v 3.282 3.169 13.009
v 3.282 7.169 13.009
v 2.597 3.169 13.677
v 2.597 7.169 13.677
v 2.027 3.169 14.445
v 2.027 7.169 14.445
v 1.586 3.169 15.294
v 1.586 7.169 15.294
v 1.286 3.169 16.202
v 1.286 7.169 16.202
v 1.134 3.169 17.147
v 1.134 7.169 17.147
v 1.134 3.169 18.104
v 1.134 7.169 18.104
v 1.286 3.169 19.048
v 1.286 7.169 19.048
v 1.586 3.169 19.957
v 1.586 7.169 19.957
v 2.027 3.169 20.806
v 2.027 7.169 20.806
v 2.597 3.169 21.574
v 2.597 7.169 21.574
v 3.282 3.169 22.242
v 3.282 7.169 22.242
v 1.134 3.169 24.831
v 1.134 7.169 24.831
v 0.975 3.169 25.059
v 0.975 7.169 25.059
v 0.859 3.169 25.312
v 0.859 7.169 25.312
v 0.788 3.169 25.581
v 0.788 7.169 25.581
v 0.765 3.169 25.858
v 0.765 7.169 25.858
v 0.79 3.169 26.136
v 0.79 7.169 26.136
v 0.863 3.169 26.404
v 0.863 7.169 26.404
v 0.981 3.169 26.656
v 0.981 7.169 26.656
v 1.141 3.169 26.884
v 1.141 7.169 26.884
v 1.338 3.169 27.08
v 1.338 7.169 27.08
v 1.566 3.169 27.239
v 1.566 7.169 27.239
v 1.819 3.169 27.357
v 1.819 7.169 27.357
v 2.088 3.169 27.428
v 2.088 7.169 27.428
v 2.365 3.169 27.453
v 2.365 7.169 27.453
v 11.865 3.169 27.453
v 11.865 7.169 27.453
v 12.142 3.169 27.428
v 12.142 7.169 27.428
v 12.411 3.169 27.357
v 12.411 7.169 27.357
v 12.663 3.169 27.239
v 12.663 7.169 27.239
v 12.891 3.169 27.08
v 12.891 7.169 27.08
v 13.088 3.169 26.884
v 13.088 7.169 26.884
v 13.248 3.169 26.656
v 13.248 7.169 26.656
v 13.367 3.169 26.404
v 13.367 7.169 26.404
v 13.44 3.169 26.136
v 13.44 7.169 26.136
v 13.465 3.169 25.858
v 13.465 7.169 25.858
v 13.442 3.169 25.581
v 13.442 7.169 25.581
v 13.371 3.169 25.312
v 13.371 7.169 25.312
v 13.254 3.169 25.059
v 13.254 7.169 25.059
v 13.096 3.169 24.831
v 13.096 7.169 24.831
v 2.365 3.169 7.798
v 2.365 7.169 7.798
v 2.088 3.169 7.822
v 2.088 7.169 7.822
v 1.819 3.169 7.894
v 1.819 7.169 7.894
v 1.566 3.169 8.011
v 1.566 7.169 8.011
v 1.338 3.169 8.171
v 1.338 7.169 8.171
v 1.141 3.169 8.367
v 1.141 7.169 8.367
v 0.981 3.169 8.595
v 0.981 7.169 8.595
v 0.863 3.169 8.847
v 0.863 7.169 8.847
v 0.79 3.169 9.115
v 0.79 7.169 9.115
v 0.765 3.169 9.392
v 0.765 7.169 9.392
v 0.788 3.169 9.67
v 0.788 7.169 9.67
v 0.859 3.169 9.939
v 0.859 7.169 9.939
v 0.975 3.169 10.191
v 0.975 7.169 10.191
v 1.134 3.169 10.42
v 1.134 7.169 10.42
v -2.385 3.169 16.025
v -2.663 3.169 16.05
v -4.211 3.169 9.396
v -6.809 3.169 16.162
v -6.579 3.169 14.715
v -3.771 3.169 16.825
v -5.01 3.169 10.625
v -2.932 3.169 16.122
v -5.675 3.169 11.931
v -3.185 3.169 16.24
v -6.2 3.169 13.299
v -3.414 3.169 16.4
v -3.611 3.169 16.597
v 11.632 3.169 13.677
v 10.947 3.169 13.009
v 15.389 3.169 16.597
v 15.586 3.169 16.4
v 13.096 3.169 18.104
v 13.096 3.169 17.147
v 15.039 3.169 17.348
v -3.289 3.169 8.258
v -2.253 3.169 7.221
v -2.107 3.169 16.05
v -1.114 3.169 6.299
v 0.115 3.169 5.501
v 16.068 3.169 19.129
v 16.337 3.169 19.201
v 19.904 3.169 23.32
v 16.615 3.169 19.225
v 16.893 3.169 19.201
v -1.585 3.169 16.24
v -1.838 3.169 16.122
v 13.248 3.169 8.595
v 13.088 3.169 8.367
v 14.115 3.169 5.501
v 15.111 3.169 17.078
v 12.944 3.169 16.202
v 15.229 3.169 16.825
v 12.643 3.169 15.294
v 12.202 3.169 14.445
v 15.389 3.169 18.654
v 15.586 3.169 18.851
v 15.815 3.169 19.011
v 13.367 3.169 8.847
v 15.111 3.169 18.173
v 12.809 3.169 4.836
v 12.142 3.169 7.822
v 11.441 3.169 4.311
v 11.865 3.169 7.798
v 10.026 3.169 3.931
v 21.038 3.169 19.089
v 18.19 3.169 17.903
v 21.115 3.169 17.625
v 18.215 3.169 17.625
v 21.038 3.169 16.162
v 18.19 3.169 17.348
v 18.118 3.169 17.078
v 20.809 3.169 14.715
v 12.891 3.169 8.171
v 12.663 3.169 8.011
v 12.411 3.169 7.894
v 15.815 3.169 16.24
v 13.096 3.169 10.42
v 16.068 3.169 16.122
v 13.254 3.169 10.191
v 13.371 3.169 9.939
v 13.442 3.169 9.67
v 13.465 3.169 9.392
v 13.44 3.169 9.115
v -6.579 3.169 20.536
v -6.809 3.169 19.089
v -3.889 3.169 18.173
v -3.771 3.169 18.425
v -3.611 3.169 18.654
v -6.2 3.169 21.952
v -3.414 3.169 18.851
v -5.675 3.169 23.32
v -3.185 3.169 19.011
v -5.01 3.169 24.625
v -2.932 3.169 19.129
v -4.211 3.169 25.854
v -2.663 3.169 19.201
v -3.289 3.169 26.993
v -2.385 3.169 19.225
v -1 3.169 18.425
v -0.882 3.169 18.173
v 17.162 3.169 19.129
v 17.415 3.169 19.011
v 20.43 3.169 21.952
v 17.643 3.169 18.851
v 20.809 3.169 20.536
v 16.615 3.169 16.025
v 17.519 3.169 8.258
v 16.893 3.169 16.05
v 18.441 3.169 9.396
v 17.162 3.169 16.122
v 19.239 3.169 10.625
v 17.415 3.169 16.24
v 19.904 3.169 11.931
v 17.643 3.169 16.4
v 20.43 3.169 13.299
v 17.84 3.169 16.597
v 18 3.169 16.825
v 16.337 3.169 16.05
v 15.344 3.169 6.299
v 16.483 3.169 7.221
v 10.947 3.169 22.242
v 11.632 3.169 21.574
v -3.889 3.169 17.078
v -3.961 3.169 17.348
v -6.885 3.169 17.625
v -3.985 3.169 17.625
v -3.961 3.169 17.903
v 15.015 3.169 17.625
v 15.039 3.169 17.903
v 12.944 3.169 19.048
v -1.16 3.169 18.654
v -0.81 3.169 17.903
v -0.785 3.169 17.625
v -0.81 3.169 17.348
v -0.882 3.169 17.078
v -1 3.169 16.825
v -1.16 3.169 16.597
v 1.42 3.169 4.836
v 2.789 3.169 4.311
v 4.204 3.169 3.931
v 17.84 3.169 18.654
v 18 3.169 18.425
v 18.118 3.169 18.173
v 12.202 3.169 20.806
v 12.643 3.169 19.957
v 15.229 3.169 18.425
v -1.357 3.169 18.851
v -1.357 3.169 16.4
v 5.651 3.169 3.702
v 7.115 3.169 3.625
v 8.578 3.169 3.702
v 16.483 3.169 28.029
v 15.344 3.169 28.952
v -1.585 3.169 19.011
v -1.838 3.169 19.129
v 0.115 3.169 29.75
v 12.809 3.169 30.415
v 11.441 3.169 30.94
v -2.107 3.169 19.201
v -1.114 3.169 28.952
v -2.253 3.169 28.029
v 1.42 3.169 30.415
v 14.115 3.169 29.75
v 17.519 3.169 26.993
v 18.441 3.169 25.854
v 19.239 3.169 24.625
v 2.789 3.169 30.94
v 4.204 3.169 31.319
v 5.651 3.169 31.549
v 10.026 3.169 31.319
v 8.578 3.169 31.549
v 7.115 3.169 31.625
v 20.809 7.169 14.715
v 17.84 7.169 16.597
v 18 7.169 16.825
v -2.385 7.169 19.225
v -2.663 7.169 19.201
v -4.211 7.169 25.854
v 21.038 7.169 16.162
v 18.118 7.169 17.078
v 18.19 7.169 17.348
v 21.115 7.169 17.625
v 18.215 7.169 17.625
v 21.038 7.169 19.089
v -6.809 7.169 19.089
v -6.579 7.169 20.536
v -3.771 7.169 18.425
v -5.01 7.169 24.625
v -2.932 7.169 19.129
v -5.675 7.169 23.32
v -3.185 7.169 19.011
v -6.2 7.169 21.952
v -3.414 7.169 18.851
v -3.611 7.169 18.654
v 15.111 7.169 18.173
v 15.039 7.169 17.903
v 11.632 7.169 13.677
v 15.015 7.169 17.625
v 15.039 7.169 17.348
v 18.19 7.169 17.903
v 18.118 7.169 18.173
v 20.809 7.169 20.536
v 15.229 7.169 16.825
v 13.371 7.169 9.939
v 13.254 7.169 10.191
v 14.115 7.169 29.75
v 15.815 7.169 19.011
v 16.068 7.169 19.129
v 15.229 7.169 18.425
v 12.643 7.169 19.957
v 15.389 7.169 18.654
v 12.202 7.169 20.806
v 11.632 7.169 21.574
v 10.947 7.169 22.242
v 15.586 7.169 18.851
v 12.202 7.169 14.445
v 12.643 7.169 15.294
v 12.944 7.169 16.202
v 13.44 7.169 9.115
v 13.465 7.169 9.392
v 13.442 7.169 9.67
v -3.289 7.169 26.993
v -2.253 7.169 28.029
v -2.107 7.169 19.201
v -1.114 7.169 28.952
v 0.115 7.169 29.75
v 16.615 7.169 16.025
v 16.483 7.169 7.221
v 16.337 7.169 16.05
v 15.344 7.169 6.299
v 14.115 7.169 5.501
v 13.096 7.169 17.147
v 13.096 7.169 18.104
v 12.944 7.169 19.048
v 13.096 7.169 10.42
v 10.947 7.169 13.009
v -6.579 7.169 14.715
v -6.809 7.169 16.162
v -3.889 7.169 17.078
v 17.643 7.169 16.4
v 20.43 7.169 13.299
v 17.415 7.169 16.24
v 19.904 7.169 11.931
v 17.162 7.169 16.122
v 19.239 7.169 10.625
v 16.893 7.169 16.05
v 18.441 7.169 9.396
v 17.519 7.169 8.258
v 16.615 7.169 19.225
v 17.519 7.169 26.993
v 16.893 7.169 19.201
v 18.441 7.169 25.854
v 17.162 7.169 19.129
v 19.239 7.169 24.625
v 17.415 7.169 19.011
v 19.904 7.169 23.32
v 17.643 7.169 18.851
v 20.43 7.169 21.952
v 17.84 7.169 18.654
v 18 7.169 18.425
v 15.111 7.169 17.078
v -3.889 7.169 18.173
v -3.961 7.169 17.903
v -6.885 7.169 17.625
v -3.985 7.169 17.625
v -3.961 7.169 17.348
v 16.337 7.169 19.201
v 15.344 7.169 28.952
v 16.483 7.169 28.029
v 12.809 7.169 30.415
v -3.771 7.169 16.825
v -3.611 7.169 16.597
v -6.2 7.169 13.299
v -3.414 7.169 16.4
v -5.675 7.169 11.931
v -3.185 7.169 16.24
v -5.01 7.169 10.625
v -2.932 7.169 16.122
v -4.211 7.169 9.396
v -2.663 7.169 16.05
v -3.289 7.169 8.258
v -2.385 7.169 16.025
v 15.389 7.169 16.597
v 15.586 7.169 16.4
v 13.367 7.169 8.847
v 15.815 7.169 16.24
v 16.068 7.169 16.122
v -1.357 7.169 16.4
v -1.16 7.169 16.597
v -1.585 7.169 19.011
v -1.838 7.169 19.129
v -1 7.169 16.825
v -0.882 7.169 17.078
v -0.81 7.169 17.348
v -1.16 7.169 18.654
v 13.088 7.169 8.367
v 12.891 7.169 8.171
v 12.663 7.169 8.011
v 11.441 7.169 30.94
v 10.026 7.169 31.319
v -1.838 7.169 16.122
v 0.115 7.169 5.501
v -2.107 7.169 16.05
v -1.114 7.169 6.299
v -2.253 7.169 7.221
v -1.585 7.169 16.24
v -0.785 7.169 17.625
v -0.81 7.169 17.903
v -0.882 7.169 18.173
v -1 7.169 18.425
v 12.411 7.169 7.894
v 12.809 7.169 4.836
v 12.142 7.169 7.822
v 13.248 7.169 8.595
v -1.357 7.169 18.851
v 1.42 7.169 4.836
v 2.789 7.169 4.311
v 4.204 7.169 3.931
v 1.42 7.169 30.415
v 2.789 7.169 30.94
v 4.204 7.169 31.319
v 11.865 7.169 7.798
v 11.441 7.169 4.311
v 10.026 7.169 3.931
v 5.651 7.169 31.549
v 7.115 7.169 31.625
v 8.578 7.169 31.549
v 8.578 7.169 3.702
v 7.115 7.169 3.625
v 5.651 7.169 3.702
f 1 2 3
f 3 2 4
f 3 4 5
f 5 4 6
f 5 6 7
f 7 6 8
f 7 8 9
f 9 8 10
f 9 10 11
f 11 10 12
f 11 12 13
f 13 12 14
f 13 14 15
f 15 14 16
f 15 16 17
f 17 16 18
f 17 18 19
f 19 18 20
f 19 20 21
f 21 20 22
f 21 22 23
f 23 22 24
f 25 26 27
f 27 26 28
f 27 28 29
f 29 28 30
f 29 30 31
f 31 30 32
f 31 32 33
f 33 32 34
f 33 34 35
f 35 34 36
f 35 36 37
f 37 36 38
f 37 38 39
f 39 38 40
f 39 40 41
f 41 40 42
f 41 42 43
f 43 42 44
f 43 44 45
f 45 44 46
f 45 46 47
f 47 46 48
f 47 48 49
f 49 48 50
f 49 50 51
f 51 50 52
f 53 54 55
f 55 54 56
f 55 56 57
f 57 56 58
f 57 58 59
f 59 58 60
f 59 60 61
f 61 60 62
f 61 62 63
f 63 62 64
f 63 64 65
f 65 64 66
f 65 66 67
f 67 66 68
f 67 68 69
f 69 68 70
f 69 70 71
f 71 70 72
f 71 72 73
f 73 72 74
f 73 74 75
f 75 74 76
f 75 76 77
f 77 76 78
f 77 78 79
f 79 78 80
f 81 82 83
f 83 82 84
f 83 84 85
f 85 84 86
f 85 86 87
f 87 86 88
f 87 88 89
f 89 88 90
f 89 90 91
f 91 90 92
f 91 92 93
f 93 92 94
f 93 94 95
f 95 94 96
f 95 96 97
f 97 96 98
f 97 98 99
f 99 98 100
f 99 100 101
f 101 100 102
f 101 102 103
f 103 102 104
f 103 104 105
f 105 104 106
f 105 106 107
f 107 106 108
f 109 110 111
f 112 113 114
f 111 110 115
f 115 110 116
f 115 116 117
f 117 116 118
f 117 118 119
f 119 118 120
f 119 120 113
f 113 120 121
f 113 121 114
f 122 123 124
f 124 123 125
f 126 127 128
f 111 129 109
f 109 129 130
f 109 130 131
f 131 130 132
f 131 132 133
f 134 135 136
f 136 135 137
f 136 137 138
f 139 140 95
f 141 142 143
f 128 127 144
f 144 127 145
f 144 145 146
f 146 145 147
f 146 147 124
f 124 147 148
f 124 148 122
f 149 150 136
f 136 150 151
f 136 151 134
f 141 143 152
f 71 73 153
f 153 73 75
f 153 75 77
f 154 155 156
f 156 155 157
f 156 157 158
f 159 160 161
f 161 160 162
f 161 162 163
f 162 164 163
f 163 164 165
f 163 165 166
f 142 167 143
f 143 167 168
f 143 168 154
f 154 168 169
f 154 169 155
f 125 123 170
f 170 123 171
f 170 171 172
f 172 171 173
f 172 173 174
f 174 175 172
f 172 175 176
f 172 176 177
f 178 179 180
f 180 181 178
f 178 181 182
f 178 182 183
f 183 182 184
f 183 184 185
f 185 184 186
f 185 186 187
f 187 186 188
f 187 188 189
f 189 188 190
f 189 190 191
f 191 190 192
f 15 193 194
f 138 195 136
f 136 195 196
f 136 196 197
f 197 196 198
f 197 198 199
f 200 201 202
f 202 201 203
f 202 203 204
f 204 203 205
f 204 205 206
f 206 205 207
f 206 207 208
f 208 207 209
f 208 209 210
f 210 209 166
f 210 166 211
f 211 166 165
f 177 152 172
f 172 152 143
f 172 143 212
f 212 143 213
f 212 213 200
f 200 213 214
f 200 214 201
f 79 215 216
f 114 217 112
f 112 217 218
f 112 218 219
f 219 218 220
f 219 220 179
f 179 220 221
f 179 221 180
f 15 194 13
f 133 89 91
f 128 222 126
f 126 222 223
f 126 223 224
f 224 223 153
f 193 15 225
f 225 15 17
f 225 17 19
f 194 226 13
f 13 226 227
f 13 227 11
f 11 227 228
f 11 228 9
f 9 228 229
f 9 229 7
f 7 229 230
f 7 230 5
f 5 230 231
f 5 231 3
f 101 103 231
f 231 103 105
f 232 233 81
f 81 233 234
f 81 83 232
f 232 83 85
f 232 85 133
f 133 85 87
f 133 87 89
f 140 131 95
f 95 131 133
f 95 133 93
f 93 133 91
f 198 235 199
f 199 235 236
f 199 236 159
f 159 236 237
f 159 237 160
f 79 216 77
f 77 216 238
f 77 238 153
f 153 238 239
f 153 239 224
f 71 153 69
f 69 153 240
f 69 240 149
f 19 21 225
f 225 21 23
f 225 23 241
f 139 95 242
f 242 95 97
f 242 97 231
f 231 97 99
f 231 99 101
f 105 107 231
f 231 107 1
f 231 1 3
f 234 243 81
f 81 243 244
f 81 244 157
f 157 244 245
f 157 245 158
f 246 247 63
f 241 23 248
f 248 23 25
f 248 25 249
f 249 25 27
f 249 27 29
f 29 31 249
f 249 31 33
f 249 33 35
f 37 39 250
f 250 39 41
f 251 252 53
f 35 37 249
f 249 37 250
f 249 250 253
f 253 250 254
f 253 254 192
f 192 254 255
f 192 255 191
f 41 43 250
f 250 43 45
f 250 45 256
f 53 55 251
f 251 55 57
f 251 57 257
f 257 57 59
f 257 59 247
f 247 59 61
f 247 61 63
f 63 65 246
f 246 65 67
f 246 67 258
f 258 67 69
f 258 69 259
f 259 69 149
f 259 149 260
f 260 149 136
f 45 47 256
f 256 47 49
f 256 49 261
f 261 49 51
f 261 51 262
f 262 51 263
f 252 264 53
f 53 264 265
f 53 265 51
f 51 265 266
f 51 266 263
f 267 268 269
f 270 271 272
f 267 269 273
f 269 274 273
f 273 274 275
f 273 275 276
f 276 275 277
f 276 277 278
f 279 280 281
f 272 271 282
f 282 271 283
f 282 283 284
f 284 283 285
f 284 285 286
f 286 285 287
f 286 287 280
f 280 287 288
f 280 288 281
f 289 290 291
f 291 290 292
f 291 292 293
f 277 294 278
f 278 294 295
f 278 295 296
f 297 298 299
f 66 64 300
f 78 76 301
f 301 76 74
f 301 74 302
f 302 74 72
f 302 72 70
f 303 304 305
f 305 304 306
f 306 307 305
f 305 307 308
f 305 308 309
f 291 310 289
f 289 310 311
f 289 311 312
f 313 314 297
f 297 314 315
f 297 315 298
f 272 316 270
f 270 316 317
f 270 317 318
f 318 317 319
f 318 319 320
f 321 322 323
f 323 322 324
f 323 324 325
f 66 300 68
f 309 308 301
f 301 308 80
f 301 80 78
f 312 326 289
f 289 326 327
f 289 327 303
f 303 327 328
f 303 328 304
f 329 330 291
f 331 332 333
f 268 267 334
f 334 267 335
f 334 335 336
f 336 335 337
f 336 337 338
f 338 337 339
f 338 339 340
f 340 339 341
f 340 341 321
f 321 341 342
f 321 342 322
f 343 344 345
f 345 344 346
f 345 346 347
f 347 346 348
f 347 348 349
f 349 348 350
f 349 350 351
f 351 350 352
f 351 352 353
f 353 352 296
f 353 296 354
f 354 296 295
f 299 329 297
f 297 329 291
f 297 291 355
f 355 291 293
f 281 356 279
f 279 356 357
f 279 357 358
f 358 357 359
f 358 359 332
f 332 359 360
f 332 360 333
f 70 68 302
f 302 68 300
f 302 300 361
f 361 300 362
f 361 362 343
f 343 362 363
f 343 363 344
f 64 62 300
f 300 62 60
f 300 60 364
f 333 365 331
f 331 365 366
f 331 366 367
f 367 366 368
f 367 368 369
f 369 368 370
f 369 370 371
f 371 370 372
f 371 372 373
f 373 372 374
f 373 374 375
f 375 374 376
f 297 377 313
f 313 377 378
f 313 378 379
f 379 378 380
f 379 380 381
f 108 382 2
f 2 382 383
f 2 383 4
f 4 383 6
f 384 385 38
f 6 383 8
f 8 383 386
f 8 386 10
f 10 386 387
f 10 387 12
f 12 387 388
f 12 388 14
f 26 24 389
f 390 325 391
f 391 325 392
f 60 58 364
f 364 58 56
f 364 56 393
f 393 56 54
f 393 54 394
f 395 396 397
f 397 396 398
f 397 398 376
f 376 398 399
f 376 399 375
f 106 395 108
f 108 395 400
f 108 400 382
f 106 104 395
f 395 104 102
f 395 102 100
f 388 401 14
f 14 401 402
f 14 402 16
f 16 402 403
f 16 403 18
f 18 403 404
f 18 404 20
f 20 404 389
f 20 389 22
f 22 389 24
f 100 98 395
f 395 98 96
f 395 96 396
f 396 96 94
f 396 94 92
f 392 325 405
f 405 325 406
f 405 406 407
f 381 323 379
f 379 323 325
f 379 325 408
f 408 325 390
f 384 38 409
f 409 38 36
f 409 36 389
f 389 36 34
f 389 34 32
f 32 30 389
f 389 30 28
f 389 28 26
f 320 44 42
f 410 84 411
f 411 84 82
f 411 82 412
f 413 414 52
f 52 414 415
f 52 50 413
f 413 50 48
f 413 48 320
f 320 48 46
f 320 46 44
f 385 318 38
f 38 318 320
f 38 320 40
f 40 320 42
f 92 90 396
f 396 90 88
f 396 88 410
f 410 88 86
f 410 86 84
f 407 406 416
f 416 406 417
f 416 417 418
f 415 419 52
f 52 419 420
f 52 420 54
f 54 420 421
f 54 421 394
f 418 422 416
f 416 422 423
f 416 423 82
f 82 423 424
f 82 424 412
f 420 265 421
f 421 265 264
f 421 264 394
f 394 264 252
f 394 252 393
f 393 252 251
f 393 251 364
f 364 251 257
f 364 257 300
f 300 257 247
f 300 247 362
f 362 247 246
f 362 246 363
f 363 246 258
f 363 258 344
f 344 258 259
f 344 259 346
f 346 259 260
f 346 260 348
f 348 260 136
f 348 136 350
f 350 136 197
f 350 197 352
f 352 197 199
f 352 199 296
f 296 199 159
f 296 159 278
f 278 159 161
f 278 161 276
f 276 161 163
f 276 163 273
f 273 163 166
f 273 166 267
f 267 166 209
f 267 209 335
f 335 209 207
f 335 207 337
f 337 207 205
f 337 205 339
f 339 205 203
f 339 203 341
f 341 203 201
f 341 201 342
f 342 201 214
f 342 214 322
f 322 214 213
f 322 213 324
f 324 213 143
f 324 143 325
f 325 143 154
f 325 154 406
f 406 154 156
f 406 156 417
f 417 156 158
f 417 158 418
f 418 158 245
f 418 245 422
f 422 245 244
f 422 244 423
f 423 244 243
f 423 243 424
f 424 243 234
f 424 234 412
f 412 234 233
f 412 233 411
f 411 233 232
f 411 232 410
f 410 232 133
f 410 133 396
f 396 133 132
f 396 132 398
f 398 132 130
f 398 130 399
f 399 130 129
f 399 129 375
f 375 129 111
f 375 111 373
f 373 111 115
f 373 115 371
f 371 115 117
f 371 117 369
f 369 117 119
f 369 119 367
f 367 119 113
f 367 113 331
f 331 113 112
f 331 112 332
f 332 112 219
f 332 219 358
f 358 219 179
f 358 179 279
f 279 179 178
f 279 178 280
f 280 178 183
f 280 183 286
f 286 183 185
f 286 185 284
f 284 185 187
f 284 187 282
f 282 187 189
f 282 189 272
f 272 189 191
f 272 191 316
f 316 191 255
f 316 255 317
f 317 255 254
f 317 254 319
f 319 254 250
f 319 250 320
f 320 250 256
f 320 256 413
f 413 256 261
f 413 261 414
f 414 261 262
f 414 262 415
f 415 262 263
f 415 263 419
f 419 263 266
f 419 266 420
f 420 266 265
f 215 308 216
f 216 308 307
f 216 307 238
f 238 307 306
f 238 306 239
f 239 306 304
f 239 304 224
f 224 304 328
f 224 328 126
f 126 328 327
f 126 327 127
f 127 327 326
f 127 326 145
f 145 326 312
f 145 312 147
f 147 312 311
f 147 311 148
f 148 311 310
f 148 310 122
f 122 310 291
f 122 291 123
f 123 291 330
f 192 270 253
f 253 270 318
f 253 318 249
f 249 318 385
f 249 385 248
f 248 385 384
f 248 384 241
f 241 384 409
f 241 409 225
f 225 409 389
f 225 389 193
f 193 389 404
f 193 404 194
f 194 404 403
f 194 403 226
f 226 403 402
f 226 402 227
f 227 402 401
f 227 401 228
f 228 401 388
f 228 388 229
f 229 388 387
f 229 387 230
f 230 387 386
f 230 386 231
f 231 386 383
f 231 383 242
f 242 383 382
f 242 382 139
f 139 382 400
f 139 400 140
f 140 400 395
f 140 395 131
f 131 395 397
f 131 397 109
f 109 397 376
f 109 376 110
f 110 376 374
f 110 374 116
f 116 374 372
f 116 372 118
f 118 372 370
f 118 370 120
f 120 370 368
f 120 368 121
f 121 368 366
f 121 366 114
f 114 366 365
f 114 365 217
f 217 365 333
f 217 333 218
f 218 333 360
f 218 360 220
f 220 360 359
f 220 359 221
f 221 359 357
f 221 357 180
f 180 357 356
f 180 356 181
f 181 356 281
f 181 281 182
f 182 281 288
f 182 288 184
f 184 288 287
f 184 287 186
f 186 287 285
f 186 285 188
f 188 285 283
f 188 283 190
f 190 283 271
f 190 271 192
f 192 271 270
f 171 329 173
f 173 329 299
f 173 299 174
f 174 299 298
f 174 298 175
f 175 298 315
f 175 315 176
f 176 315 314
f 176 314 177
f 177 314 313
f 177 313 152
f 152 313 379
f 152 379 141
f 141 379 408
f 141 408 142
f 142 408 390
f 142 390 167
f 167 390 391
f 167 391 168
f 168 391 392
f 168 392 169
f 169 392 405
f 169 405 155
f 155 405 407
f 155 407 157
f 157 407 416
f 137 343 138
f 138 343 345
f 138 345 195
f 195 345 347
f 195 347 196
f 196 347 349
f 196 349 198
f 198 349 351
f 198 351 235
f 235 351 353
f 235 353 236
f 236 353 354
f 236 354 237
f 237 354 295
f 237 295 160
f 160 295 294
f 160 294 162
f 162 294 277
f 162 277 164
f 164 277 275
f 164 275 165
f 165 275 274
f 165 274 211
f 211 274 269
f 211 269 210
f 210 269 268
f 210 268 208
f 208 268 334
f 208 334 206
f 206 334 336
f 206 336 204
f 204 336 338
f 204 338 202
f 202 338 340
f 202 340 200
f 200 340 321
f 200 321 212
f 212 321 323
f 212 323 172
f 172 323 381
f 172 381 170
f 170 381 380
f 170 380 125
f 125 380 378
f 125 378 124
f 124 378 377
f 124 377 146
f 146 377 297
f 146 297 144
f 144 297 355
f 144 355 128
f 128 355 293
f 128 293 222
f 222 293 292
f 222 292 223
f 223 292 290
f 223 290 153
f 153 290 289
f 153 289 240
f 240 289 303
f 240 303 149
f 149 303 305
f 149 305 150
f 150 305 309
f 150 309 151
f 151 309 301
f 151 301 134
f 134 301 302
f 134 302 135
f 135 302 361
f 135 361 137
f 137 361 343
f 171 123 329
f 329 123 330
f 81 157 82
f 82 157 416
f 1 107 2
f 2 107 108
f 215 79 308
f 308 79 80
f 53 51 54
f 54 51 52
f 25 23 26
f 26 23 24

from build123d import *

# Parameters (mm, degrees)
SKETCH1_R           = 14
SKETCH1_R_2         = 6
SKETCH1_R_3         = 1.6
BOSS_EXTRUDE1_DEPTH = 4
CUT_EXTRUDE1_REACH  = 6


with BuildPart() as part:
    # Sketch1 → Boss-Extrude1 (new body)
    with BuildSketch(Plane.XZ.offset(-7.168741666)):
        with Locations((7.114749013, 17.625339305)):
            Circle(SKETCH1_R)
        with Locations((7.114749013, 17.625339305)):
            Circle(SKETCH1_R_2, mode=Mode.SUBTRACT)
        with Locations((2.364749013, 25.852580641)):
            Circle(SKETCH1_R_3, mode=Mode.SUBTRACT)
        with Locations((-2.385250987, 17.625339305)):
            Circle(SKETCH1_R_3, mode=Mode.SUBTRACT)
        with Locations((2.364749013, 9.398097969)):
            Circle(SKETCH1_R_3, mode=Mode.SUBTRACT)
        with Locations((11.864749013, 9.398097969)):
            Circle(SKETCH1_R_3, mode=Mode.SUBTRACT)
        with Locations((16.614749013, 17.625339305)):
            Circle(SKETCH1_R_3, mode=Mode.SUBTRACT)
        with Locations((11.864749013, 25.852580641)):
            Circle(SKETCH1_R_3, mode=Mode.SUBTRACT)
    extrude(amount=BOSS_EXTRUDE1_DEPTH)

    # Sketch2 → Cut-Extrude1 (cut, up to next)
    with BuildSketch(Plane.XZ.offset(-3.168741666), mode=Mode.PRIVATE) as cut_extrude1_sk1:
        Polygon((11.864749013, 7.798097969), (2.364749013, 7.798097969), (1.133638883, 10.420041142), (3.282462114, 13.008676319), (10.947035911, 13.008676319), (13.095859142, 10.420041142), align=None)
    cut_extrude1_tool1 = extrude(cut_extrude1_sk1.sketch, amount=-CUT_EXTRUDE1_REACH, mode=Mode.PRIVATE) & part.part
    add(cut_extrude1_tool1.solids().sort_by_distance((7.114749, 3.168742, 10.326739))[0], mode=Mode.SUBTRACT)
    # Sketch2 → Cut-Extrude1 (cut, up to next)
    with BuildSketch(Plane.XZ.offset(-3.168741666), mode=Mode.PRIVATE) as cut_extrude1_sk2:
        Polygon((1.133638883, 24.830637468), (2.364749013, 27.452580641), (11.864749013, 27.452580641), (13.095859142, 24.830637468), (10.947035911, 22.242002291), (3.282462114, 22.242002291), align=None)
    cut_extrude1_tool2 = extrude(cut_extrude1_sk2.sketch, amount=-CUT_EXTRUDE1_REACH, mode=Mode.PRIVATE) & part.part
    add(cut_extrude1_tool2.solids().sort_by_distance((7.114749, 3.168742, 24.923939))[0], mode=Mode.SUBTRACT)


solid = part.part
